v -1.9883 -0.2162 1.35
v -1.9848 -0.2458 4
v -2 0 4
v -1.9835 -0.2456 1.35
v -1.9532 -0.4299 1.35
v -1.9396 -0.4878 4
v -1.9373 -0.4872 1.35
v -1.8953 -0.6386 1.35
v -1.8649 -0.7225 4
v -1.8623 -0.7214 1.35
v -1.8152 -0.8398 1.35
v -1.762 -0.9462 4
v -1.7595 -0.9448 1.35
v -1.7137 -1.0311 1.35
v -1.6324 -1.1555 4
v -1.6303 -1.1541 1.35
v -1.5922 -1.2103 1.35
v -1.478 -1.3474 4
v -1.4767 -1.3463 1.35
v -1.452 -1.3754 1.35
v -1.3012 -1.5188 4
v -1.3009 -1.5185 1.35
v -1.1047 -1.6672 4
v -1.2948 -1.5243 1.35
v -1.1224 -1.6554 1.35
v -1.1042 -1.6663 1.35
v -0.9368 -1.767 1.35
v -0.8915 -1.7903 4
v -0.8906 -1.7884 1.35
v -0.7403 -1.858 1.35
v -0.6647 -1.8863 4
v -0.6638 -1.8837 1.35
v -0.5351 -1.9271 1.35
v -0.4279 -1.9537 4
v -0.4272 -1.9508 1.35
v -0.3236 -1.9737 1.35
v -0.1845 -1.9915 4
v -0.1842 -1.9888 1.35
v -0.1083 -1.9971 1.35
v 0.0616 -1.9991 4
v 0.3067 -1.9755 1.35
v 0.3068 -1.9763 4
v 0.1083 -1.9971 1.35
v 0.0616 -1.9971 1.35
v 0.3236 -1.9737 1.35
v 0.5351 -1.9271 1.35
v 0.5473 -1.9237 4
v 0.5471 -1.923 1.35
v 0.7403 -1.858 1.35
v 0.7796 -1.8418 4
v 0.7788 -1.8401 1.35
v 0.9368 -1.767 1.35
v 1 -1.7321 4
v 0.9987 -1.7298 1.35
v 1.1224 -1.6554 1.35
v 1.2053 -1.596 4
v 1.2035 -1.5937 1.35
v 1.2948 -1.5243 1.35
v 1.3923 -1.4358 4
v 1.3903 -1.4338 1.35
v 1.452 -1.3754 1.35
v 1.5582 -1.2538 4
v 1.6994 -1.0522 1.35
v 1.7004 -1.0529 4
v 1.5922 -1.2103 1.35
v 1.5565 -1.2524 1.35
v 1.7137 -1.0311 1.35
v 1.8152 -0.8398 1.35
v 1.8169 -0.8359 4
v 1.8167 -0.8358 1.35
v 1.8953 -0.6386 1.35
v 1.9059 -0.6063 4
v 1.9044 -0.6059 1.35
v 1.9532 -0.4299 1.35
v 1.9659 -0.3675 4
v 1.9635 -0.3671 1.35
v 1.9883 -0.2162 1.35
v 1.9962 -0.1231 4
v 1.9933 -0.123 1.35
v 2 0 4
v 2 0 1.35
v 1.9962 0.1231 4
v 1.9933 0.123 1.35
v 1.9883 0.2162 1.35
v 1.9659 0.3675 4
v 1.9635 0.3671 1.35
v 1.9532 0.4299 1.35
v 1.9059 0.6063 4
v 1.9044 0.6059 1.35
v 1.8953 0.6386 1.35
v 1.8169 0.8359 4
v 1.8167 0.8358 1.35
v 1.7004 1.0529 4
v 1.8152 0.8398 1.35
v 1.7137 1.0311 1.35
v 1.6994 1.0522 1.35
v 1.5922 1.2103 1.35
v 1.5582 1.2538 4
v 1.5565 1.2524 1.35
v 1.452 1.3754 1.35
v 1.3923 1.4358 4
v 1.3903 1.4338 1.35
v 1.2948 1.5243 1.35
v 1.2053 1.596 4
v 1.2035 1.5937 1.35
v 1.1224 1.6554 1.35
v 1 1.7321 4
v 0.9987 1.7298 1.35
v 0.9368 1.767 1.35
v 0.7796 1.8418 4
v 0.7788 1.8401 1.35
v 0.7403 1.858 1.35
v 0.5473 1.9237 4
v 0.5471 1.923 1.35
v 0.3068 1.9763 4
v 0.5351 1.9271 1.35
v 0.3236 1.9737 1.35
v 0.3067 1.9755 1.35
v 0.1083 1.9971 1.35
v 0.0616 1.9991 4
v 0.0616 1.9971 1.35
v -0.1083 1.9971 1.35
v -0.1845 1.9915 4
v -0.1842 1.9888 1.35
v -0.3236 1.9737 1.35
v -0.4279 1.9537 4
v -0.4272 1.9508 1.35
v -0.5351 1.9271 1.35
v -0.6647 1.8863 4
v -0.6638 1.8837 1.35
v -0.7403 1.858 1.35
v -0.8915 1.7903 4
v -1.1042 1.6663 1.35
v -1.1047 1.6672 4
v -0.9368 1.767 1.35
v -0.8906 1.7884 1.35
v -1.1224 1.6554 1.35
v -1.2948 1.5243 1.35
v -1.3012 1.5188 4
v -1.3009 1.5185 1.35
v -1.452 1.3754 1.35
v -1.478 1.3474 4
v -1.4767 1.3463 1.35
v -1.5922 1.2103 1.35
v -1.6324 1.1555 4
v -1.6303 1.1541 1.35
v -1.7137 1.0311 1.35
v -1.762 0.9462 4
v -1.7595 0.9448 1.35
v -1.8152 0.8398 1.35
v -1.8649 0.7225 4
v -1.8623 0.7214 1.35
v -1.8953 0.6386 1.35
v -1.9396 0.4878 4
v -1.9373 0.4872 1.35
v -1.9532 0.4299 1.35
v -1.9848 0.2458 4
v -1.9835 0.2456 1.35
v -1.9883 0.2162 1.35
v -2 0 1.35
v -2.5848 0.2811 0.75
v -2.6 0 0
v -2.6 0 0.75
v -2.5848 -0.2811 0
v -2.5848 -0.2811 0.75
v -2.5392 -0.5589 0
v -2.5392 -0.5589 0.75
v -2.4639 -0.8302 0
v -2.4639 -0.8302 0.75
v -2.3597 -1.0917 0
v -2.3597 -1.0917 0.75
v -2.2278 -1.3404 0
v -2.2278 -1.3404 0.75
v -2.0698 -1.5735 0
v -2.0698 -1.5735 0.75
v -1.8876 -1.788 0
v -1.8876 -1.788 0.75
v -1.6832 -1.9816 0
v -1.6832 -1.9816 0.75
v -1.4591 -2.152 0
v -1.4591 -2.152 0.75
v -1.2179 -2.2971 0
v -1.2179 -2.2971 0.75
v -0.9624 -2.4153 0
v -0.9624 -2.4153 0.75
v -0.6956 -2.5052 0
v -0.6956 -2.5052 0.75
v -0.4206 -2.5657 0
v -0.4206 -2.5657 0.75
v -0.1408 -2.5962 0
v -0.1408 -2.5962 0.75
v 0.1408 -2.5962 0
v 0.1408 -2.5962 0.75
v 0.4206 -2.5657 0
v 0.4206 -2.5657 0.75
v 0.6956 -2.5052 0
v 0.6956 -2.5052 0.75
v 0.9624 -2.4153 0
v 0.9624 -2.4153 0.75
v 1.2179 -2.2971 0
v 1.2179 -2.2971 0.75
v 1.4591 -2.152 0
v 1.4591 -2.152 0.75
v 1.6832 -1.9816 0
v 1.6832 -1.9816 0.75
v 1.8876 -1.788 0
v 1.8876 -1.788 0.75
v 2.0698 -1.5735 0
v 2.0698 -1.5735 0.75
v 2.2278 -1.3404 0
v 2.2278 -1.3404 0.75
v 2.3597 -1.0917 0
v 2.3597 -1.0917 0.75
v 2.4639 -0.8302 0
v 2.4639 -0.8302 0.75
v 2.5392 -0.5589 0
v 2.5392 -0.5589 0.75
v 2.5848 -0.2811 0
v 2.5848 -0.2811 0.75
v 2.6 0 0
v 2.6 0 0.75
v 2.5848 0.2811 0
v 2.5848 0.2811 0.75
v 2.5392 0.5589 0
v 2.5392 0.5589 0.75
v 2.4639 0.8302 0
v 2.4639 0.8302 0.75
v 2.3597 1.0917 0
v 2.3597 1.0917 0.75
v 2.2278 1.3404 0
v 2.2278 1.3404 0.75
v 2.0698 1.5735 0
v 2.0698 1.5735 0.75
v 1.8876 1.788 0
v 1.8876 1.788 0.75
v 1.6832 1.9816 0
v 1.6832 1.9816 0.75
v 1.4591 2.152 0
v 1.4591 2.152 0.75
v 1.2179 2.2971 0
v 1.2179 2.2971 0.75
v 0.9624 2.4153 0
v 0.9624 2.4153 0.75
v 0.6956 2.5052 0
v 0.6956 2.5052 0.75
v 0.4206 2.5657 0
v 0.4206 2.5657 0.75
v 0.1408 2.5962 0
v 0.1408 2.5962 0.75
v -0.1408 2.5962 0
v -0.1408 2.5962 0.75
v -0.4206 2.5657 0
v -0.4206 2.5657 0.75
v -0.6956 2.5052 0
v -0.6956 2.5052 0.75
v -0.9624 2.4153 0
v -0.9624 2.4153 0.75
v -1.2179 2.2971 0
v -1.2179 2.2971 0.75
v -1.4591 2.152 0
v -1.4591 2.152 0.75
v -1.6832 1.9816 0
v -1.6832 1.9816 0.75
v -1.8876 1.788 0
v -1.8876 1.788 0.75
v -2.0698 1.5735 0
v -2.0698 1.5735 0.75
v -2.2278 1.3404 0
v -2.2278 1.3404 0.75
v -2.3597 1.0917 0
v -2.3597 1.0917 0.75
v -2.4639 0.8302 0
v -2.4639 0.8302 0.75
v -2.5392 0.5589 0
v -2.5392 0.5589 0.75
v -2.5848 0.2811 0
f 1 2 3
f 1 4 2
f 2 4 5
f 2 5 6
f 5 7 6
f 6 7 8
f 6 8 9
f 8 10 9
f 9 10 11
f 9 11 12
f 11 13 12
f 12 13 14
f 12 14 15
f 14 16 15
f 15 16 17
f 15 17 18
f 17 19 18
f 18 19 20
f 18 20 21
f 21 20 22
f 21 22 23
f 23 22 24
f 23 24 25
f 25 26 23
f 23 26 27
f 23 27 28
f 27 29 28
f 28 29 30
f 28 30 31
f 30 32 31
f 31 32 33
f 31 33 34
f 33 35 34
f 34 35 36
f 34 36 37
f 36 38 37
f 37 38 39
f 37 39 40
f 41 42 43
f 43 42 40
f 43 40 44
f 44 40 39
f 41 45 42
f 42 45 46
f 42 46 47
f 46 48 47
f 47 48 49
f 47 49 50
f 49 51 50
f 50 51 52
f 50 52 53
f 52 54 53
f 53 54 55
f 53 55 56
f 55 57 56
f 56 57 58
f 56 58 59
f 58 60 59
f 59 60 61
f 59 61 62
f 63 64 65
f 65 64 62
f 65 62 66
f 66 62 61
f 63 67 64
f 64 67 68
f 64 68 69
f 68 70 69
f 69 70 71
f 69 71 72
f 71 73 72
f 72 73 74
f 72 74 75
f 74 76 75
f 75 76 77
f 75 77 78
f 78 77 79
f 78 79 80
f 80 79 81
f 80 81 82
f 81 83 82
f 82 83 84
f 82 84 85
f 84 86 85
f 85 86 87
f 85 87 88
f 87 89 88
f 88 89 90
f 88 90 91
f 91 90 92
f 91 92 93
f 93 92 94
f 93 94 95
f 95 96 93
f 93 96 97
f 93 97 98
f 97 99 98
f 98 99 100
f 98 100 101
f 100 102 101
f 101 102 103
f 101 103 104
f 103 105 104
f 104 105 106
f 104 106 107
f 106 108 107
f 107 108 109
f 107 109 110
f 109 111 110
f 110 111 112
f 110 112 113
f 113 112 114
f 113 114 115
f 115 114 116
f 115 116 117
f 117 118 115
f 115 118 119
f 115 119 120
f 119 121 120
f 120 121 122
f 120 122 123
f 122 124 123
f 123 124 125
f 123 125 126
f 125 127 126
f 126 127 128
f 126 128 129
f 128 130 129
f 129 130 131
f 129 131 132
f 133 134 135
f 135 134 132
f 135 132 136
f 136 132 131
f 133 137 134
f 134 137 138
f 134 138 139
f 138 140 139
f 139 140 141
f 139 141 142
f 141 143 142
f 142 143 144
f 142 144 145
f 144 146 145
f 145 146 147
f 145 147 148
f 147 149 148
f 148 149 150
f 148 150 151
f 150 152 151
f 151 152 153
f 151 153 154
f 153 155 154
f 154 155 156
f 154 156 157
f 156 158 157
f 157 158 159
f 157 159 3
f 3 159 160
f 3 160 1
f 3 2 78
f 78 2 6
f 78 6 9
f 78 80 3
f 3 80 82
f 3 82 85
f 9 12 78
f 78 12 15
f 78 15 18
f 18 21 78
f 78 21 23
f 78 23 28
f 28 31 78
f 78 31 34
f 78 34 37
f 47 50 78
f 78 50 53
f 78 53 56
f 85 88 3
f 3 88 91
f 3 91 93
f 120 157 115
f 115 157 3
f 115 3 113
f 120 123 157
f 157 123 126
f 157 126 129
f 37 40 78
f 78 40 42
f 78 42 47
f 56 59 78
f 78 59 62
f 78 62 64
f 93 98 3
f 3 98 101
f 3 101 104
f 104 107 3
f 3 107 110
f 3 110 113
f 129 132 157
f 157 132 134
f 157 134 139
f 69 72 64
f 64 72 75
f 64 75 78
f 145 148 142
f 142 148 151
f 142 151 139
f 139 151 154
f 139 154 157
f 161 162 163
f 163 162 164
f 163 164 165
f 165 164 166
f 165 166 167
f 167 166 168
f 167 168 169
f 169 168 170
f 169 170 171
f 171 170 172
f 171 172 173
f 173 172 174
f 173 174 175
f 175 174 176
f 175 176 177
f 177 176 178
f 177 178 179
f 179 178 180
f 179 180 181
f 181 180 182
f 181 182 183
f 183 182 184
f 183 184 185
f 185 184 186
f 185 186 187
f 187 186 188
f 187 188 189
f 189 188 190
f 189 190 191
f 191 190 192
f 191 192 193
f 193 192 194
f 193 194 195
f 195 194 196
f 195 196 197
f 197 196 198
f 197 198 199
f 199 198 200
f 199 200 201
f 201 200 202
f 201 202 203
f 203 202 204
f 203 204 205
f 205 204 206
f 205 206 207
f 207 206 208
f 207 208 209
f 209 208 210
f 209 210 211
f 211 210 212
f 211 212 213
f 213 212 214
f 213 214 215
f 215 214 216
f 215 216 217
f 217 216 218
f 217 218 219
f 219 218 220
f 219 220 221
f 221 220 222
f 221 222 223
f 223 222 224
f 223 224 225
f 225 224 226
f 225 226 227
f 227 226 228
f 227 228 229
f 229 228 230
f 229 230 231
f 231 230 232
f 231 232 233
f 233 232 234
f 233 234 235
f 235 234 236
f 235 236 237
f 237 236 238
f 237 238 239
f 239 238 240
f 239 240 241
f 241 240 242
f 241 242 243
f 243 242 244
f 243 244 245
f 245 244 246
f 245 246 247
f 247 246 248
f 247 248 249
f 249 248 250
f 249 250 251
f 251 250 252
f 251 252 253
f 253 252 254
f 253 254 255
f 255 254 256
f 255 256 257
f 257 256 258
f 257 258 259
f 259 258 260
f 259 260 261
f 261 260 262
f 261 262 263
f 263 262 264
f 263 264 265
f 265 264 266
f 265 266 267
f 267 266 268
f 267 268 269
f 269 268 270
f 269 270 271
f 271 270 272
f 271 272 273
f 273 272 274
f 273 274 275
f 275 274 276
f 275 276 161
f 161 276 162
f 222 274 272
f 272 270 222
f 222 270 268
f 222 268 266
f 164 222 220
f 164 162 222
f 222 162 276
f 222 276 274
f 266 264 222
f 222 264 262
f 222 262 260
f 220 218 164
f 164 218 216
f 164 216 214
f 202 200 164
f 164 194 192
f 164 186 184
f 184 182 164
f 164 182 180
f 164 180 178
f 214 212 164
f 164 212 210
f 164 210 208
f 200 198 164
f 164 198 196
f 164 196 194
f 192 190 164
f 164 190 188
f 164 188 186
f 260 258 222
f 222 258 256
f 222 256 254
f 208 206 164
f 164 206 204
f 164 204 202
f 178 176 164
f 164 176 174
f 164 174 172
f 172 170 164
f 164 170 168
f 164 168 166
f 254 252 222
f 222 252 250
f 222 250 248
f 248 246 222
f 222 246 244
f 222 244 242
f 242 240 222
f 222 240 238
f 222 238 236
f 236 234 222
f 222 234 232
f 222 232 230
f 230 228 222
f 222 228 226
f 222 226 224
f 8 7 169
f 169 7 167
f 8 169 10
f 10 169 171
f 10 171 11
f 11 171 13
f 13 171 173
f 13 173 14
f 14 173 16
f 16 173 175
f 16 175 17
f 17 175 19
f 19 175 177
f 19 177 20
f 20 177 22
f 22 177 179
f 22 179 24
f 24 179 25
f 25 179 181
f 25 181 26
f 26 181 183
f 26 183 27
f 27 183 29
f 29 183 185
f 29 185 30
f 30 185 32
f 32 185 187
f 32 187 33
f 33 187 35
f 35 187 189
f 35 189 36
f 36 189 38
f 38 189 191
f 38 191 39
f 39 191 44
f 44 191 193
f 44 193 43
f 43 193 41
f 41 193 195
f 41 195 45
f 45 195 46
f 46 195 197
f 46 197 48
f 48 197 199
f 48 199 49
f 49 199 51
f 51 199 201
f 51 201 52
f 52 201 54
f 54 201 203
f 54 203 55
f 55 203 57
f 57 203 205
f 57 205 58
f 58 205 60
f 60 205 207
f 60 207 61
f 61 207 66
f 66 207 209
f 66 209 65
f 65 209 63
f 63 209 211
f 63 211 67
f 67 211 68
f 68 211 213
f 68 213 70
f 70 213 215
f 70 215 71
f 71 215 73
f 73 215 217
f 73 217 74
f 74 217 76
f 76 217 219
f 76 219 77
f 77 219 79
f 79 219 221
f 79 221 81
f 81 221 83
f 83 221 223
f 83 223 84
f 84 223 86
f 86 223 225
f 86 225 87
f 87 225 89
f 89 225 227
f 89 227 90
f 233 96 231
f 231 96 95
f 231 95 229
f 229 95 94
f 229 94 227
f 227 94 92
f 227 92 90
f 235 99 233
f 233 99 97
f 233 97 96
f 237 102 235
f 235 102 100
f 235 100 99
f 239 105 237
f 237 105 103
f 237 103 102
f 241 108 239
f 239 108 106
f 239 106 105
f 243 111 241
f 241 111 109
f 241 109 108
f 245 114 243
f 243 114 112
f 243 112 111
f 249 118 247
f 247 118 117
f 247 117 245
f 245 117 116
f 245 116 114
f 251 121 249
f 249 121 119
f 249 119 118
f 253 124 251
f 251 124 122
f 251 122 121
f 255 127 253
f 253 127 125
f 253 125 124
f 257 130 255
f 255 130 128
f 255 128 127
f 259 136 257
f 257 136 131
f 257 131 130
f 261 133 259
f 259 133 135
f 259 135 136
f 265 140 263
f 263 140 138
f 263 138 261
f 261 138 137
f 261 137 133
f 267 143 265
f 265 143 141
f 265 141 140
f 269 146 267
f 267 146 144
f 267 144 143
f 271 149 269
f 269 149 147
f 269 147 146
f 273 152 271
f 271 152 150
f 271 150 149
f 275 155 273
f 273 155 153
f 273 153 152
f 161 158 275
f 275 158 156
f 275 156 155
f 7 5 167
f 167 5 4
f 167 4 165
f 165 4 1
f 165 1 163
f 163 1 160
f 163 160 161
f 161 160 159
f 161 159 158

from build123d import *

# Parameters (mm, degrees)
SKETCH1_R           = 2
BOSS_EXTRUDE1_DEPTH = 4
SKETCH2_R           = 2.6
BOSS_EXTRUDE2_DEPTH = 1.75
CHAMFER1_SIZE       = 1


with BuildPart() as part:
    # Sketch1 → Boss-Extrude1 (new body)
    with BuildSketch(Plane.XY):
        Circle(SKETCH1_R)
    extrude(amount=BOSS_EXTRUDE1_DEPTH)

    # Sketch2 → Boss-Extrude2 (add)
    with BuildSketch(Plane(origin=(0, 0, 0), x_dir=(-1, 0, 0), z_dir=(0, 0, -1))):
        Circle(SKETCH2_R)
    extrude(amount=-BOSS_EXTRUDE2_DEPTH)

    # Chamfer1
    # the kernel refuses this chamfer: 1 mm, written as the material it takes off along each edge
    with BuildSketch(Plane(origin=(0, 0, 1.75), x_dir=(-1, 0, 0), z_dir=(0, -1, 0))) as chamfer1_piece_1_section:
        Polygon((2.6, CHAMFER1_SIZE), (2.6 - CHAMFER1_SIZE, 0), (2.6, 0), align=None)
    chamfer1_piece_1 = revolve(axis=Axis((0, 0, 1.75), (0, 0, -1)), mode=Mode.PRIVATE)
    chamfer1_piece_1 = chamfer1_piece_1 - Plane(origin=(0, 0, 1.049223844), x_dir=(1, 0, 0), z_dir=(0, 0, -1)) * Cylinder(2, 11, mode=Mode.PRIVATE)
    add(chamfer1_piece_1, mode=Mode.SUBTRACT)


solid = part.part
